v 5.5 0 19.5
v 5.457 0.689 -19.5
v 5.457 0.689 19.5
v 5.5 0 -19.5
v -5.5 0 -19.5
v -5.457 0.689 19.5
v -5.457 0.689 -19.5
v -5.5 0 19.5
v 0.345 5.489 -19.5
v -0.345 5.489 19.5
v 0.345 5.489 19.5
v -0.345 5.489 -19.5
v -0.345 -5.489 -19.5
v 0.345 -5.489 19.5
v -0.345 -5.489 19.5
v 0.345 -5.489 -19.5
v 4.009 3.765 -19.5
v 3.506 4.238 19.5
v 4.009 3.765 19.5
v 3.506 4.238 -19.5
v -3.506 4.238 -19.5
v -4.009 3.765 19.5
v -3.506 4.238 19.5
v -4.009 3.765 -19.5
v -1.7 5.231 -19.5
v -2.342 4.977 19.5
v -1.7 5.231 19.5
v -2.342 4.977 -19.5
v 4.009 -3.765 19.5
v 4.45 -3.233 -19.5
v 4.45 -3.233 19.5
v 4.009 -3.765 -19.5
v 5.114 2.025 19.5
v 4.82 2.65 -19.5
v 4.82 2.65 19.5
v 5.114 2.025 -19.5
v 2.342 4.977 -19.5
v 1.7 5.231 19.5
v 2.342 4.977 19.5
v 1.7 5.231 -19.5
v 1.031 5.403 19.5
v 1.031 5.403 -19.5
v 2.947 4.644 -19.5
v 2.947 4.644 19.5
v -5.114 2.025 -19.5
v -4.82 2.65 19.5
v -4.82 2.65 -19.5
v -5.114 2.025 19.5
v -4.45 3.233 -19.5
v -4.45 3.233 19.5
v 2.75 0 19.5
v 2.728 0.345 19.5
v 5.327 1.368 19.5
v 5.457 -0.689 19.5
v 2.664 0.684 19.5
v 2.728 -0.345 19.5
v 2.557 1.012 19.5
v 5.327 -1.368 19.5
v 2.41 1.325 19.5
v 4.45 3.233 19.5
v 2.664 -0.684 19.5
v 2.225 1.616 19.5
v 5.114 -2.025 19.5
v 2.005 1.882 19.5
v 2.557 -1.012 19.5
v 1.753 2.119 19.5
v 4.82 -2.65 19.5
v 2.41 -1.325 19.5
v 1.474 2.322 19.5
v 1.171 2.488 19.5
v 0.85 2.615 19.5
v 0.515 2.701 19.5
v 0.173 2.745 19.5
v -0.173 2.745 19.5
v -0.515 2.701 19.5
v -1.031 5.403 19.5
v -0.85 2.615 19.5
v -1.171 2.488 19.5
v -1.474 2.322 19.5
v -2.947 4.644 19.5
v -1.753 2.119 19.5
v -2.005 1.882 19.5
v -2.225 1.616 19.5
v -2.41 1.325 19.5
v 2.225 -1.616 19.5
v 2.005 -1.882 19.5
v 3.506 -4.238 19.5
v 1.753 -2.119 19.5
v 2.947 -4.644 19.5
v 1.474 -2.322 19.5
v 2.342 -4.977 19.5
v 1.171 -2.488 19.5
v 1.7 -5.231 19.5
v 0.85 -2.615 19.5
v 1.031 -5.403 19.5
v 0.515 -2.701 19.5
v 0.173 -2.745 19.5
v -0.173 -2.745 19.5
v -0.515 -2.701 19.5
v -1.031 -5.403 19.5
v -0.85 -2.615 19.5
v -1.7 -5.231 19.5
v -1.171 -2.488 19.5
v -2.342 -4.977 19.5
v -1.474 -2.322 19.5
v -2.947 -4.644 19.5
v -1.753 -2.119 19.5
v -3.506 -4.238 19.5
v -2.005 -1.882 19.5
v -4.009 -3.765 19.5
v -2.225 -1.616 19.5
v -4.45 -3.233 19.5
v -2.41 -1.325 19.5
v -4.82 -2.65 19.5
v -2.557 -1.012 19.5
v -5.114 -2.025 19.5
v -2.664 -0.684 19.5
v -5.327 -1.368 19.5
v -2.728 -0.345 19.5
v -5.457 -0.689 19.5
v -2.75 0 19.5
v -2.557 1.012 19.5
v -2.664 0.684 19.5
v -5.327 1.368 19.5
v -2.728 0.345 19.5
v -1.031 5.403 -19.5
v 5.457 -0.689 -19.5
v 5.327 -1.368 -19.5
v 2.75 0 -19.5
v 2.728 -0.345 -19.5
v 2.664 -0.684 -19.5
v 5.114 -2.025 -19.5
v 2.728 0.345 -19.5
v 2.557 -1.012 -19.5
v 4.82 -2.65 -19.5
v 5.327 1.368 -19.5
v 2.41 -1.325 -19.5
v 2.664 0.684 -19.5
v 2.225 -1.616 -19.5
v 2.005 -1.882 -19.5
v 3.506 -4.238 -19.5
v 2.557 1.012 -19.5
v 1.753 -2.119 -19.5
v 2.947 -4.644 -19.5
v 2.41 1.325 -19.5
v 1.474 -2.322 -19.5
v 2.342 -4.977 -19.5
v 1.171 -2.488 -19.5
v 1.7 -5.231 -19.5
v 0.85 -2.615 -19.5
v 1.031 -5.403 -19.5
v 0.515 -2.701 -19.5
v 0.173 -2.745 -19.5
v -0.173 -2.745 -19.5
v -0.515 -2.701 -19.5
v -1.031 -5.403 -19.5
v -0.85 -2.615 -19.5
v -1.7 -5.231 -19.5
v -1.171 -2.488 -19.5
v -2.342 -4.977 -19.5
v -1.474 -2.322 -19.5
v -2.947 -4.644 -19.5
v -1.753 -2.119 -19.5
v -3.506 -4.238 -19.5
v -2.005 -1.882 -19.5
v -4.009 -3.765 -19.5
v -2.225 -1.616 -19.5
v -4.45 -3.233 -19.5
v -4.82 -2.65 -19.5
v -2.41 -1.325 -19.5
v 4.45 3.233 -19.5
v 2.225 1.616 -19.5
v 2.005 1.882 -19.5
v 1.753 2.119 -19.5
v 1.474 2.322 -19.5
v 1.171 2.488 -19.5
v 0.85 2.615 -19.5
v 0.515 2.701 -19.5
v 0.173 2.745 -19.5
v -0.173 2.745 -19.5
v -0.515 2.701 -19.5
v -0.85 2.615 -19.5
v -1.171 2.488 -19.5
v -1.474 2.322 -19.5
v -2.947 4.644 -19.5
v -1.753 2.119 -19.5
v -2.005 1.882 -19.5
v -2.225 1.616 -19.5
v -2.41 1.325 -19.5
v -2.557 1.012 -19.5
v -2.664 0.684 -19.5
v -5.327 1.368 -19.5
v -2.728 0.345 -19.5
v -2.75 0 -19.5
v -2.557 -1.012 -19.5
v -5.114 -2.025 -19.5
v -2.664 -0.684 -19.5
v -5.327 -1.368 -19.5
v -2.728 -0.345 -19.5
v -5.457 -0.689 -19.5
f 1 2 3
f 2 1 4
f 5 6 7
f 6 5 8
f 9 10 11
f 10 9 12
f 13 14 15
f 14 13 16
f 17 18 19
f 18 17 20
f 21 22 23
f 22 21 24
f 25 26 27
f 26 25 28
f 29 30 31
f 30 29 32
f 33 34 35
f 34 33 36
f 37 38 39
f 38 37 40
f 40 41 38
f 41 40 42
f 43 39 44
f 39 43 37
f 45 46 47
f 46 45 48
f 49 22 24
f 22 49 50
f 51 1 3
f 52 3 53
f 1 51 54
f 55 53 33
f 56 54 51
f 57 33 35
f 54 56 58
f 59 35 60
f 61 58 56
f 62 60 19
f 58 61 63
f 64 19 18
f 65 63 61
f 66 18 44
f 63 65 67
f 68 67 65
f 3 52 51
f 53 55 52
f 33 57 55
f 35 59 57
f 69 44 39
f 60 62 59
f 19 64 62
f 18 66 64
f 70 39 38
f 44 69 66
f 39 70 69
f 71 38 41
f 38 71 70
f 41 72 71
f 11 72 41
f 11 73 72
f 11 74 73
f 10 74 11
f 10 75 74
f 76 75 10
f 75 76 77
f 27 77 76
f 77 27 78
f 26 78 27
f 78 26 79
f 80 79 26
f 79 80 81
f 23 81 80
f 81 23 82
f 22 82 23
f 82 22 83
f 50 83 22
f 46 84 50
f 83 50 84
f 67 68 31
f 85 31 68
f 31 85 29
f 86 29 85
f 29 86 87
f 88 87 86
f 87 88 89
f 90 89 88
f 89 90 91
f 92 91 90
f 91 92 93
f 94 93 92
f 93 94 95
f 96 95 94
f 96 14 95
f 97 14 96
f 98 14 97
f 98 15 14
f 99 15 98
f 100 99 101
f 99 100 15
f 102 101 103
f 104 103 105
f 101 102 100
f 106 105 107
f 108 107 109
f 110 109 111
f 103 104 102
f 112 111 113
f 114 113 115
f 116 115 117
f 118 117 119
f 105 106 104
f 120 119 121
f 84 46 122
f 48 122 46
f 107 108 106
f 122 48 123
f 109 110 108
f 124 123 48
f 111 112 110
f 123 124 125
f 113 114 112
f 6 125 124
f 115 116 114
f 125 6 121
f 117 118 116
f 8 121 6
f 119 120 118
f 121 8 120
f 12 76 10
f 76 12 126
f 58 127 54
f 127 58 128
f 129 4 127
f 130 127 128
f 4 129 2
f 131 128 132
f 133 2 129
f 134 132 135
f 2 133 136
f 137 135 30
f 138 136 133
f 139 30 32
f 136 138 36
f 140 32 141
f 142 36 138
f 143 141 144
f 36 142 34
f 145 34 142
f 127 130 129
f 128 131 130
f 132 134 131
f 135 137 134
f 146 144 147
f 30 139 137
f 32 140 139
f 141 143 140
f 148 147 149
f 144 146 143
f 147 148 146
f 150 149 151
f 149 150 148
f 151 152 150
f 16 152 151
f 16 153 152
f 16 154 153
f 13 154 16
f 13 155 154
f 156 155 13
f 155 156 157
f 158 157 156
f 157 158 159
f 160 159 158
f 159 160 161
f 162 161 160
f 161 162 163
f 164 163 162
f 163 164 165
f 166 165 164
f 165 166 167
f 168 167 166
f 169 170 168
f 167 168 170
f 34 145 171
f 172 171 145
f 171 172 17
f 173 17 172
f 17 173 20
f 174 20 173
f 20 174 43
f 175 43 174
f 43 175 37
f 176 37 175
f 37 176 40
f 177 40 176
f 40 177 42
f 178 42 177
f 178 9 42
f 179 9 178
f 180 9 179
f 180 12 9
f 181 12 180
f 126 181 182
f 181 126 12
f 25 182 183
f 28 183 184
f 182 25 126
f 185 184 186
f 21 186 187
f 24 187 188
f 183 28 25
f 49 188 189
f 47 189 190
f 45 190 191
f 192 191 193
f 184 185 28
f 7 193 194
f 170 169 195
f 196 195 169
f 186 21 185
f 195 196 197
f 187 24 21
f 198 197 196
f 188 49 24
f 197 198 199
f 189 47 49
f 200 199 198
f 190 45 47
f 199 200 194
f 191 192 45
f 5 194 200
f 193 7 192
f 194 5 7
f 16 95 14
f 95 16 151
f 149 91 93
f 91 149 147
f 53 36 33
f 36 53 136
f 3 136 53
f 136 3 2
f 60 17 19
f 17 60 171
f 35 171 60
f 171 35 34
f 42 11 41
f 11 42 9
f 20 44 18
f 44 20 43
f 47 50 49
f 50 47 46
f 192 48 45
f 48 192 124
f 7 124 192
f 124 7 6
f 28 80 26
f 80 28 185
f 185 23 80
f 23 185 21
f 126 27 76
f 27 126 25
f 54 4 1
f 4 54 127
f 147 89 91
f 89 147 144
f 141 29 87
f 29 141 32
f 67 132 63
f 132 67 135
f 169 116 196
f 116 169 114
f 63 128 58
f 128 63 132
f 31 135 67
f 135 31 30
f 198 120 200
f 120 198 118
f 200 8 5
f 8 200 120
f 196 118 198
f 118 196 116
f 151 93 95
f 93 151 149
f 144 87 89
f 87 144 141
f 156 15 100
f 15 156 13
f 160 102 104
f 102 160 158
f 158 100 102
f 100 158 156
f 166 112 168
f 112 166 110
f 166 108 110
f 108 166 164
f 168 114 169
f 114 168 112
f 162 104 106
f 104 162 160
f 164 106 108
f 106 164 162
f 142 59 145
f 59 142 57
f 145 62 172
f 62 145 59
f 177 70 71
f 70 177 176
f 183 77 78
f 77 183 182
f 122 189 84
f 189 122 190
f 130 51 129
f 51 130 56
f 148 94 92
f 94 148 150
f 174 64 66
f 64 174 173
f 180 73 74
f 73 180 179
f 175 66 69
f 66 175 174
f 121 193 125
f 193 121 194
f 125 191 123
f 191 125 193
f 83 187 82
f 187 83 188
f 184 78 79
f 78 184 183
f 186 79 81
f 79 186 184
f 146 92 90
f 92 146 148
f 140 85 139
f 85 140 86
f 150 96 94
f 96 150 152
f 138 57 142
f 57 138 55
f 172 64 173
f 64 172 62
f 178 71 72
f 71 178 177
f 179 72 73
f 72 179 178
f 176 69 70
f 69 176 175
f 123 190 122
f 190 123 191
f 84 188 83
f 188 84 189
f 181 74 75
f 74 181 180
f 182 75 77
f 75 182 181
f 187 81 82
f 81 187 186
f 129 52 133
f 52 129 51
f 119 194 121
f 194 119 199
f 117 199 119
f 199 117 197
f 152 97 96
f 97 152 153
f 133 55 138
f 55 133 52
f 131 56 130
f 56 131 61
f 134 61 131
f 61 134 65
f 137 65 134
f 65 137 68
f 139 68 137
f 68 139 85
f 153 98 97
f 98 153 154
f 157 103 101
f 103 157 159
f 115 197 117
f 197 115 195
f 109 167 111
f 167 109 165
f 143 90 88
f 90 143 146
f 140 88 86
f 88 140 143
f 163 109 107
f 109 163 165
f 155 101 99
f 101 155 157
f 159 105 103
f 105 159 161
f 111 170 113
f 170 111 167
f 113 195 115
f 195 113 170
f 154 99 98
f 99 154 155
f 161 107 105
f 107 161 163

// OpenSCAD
$fn = 50;


difference() {
	union() {
		translate(v = [0, 0, -19.5000000000]) {
			cylinder(h = 39, r = 5.5000000000);
		}
	}
	union() {
		translate(v = [0, 0, -100.0000000000]) {
			cylinder(h = 200, r = 2.7500000000);
		}
	}
}
